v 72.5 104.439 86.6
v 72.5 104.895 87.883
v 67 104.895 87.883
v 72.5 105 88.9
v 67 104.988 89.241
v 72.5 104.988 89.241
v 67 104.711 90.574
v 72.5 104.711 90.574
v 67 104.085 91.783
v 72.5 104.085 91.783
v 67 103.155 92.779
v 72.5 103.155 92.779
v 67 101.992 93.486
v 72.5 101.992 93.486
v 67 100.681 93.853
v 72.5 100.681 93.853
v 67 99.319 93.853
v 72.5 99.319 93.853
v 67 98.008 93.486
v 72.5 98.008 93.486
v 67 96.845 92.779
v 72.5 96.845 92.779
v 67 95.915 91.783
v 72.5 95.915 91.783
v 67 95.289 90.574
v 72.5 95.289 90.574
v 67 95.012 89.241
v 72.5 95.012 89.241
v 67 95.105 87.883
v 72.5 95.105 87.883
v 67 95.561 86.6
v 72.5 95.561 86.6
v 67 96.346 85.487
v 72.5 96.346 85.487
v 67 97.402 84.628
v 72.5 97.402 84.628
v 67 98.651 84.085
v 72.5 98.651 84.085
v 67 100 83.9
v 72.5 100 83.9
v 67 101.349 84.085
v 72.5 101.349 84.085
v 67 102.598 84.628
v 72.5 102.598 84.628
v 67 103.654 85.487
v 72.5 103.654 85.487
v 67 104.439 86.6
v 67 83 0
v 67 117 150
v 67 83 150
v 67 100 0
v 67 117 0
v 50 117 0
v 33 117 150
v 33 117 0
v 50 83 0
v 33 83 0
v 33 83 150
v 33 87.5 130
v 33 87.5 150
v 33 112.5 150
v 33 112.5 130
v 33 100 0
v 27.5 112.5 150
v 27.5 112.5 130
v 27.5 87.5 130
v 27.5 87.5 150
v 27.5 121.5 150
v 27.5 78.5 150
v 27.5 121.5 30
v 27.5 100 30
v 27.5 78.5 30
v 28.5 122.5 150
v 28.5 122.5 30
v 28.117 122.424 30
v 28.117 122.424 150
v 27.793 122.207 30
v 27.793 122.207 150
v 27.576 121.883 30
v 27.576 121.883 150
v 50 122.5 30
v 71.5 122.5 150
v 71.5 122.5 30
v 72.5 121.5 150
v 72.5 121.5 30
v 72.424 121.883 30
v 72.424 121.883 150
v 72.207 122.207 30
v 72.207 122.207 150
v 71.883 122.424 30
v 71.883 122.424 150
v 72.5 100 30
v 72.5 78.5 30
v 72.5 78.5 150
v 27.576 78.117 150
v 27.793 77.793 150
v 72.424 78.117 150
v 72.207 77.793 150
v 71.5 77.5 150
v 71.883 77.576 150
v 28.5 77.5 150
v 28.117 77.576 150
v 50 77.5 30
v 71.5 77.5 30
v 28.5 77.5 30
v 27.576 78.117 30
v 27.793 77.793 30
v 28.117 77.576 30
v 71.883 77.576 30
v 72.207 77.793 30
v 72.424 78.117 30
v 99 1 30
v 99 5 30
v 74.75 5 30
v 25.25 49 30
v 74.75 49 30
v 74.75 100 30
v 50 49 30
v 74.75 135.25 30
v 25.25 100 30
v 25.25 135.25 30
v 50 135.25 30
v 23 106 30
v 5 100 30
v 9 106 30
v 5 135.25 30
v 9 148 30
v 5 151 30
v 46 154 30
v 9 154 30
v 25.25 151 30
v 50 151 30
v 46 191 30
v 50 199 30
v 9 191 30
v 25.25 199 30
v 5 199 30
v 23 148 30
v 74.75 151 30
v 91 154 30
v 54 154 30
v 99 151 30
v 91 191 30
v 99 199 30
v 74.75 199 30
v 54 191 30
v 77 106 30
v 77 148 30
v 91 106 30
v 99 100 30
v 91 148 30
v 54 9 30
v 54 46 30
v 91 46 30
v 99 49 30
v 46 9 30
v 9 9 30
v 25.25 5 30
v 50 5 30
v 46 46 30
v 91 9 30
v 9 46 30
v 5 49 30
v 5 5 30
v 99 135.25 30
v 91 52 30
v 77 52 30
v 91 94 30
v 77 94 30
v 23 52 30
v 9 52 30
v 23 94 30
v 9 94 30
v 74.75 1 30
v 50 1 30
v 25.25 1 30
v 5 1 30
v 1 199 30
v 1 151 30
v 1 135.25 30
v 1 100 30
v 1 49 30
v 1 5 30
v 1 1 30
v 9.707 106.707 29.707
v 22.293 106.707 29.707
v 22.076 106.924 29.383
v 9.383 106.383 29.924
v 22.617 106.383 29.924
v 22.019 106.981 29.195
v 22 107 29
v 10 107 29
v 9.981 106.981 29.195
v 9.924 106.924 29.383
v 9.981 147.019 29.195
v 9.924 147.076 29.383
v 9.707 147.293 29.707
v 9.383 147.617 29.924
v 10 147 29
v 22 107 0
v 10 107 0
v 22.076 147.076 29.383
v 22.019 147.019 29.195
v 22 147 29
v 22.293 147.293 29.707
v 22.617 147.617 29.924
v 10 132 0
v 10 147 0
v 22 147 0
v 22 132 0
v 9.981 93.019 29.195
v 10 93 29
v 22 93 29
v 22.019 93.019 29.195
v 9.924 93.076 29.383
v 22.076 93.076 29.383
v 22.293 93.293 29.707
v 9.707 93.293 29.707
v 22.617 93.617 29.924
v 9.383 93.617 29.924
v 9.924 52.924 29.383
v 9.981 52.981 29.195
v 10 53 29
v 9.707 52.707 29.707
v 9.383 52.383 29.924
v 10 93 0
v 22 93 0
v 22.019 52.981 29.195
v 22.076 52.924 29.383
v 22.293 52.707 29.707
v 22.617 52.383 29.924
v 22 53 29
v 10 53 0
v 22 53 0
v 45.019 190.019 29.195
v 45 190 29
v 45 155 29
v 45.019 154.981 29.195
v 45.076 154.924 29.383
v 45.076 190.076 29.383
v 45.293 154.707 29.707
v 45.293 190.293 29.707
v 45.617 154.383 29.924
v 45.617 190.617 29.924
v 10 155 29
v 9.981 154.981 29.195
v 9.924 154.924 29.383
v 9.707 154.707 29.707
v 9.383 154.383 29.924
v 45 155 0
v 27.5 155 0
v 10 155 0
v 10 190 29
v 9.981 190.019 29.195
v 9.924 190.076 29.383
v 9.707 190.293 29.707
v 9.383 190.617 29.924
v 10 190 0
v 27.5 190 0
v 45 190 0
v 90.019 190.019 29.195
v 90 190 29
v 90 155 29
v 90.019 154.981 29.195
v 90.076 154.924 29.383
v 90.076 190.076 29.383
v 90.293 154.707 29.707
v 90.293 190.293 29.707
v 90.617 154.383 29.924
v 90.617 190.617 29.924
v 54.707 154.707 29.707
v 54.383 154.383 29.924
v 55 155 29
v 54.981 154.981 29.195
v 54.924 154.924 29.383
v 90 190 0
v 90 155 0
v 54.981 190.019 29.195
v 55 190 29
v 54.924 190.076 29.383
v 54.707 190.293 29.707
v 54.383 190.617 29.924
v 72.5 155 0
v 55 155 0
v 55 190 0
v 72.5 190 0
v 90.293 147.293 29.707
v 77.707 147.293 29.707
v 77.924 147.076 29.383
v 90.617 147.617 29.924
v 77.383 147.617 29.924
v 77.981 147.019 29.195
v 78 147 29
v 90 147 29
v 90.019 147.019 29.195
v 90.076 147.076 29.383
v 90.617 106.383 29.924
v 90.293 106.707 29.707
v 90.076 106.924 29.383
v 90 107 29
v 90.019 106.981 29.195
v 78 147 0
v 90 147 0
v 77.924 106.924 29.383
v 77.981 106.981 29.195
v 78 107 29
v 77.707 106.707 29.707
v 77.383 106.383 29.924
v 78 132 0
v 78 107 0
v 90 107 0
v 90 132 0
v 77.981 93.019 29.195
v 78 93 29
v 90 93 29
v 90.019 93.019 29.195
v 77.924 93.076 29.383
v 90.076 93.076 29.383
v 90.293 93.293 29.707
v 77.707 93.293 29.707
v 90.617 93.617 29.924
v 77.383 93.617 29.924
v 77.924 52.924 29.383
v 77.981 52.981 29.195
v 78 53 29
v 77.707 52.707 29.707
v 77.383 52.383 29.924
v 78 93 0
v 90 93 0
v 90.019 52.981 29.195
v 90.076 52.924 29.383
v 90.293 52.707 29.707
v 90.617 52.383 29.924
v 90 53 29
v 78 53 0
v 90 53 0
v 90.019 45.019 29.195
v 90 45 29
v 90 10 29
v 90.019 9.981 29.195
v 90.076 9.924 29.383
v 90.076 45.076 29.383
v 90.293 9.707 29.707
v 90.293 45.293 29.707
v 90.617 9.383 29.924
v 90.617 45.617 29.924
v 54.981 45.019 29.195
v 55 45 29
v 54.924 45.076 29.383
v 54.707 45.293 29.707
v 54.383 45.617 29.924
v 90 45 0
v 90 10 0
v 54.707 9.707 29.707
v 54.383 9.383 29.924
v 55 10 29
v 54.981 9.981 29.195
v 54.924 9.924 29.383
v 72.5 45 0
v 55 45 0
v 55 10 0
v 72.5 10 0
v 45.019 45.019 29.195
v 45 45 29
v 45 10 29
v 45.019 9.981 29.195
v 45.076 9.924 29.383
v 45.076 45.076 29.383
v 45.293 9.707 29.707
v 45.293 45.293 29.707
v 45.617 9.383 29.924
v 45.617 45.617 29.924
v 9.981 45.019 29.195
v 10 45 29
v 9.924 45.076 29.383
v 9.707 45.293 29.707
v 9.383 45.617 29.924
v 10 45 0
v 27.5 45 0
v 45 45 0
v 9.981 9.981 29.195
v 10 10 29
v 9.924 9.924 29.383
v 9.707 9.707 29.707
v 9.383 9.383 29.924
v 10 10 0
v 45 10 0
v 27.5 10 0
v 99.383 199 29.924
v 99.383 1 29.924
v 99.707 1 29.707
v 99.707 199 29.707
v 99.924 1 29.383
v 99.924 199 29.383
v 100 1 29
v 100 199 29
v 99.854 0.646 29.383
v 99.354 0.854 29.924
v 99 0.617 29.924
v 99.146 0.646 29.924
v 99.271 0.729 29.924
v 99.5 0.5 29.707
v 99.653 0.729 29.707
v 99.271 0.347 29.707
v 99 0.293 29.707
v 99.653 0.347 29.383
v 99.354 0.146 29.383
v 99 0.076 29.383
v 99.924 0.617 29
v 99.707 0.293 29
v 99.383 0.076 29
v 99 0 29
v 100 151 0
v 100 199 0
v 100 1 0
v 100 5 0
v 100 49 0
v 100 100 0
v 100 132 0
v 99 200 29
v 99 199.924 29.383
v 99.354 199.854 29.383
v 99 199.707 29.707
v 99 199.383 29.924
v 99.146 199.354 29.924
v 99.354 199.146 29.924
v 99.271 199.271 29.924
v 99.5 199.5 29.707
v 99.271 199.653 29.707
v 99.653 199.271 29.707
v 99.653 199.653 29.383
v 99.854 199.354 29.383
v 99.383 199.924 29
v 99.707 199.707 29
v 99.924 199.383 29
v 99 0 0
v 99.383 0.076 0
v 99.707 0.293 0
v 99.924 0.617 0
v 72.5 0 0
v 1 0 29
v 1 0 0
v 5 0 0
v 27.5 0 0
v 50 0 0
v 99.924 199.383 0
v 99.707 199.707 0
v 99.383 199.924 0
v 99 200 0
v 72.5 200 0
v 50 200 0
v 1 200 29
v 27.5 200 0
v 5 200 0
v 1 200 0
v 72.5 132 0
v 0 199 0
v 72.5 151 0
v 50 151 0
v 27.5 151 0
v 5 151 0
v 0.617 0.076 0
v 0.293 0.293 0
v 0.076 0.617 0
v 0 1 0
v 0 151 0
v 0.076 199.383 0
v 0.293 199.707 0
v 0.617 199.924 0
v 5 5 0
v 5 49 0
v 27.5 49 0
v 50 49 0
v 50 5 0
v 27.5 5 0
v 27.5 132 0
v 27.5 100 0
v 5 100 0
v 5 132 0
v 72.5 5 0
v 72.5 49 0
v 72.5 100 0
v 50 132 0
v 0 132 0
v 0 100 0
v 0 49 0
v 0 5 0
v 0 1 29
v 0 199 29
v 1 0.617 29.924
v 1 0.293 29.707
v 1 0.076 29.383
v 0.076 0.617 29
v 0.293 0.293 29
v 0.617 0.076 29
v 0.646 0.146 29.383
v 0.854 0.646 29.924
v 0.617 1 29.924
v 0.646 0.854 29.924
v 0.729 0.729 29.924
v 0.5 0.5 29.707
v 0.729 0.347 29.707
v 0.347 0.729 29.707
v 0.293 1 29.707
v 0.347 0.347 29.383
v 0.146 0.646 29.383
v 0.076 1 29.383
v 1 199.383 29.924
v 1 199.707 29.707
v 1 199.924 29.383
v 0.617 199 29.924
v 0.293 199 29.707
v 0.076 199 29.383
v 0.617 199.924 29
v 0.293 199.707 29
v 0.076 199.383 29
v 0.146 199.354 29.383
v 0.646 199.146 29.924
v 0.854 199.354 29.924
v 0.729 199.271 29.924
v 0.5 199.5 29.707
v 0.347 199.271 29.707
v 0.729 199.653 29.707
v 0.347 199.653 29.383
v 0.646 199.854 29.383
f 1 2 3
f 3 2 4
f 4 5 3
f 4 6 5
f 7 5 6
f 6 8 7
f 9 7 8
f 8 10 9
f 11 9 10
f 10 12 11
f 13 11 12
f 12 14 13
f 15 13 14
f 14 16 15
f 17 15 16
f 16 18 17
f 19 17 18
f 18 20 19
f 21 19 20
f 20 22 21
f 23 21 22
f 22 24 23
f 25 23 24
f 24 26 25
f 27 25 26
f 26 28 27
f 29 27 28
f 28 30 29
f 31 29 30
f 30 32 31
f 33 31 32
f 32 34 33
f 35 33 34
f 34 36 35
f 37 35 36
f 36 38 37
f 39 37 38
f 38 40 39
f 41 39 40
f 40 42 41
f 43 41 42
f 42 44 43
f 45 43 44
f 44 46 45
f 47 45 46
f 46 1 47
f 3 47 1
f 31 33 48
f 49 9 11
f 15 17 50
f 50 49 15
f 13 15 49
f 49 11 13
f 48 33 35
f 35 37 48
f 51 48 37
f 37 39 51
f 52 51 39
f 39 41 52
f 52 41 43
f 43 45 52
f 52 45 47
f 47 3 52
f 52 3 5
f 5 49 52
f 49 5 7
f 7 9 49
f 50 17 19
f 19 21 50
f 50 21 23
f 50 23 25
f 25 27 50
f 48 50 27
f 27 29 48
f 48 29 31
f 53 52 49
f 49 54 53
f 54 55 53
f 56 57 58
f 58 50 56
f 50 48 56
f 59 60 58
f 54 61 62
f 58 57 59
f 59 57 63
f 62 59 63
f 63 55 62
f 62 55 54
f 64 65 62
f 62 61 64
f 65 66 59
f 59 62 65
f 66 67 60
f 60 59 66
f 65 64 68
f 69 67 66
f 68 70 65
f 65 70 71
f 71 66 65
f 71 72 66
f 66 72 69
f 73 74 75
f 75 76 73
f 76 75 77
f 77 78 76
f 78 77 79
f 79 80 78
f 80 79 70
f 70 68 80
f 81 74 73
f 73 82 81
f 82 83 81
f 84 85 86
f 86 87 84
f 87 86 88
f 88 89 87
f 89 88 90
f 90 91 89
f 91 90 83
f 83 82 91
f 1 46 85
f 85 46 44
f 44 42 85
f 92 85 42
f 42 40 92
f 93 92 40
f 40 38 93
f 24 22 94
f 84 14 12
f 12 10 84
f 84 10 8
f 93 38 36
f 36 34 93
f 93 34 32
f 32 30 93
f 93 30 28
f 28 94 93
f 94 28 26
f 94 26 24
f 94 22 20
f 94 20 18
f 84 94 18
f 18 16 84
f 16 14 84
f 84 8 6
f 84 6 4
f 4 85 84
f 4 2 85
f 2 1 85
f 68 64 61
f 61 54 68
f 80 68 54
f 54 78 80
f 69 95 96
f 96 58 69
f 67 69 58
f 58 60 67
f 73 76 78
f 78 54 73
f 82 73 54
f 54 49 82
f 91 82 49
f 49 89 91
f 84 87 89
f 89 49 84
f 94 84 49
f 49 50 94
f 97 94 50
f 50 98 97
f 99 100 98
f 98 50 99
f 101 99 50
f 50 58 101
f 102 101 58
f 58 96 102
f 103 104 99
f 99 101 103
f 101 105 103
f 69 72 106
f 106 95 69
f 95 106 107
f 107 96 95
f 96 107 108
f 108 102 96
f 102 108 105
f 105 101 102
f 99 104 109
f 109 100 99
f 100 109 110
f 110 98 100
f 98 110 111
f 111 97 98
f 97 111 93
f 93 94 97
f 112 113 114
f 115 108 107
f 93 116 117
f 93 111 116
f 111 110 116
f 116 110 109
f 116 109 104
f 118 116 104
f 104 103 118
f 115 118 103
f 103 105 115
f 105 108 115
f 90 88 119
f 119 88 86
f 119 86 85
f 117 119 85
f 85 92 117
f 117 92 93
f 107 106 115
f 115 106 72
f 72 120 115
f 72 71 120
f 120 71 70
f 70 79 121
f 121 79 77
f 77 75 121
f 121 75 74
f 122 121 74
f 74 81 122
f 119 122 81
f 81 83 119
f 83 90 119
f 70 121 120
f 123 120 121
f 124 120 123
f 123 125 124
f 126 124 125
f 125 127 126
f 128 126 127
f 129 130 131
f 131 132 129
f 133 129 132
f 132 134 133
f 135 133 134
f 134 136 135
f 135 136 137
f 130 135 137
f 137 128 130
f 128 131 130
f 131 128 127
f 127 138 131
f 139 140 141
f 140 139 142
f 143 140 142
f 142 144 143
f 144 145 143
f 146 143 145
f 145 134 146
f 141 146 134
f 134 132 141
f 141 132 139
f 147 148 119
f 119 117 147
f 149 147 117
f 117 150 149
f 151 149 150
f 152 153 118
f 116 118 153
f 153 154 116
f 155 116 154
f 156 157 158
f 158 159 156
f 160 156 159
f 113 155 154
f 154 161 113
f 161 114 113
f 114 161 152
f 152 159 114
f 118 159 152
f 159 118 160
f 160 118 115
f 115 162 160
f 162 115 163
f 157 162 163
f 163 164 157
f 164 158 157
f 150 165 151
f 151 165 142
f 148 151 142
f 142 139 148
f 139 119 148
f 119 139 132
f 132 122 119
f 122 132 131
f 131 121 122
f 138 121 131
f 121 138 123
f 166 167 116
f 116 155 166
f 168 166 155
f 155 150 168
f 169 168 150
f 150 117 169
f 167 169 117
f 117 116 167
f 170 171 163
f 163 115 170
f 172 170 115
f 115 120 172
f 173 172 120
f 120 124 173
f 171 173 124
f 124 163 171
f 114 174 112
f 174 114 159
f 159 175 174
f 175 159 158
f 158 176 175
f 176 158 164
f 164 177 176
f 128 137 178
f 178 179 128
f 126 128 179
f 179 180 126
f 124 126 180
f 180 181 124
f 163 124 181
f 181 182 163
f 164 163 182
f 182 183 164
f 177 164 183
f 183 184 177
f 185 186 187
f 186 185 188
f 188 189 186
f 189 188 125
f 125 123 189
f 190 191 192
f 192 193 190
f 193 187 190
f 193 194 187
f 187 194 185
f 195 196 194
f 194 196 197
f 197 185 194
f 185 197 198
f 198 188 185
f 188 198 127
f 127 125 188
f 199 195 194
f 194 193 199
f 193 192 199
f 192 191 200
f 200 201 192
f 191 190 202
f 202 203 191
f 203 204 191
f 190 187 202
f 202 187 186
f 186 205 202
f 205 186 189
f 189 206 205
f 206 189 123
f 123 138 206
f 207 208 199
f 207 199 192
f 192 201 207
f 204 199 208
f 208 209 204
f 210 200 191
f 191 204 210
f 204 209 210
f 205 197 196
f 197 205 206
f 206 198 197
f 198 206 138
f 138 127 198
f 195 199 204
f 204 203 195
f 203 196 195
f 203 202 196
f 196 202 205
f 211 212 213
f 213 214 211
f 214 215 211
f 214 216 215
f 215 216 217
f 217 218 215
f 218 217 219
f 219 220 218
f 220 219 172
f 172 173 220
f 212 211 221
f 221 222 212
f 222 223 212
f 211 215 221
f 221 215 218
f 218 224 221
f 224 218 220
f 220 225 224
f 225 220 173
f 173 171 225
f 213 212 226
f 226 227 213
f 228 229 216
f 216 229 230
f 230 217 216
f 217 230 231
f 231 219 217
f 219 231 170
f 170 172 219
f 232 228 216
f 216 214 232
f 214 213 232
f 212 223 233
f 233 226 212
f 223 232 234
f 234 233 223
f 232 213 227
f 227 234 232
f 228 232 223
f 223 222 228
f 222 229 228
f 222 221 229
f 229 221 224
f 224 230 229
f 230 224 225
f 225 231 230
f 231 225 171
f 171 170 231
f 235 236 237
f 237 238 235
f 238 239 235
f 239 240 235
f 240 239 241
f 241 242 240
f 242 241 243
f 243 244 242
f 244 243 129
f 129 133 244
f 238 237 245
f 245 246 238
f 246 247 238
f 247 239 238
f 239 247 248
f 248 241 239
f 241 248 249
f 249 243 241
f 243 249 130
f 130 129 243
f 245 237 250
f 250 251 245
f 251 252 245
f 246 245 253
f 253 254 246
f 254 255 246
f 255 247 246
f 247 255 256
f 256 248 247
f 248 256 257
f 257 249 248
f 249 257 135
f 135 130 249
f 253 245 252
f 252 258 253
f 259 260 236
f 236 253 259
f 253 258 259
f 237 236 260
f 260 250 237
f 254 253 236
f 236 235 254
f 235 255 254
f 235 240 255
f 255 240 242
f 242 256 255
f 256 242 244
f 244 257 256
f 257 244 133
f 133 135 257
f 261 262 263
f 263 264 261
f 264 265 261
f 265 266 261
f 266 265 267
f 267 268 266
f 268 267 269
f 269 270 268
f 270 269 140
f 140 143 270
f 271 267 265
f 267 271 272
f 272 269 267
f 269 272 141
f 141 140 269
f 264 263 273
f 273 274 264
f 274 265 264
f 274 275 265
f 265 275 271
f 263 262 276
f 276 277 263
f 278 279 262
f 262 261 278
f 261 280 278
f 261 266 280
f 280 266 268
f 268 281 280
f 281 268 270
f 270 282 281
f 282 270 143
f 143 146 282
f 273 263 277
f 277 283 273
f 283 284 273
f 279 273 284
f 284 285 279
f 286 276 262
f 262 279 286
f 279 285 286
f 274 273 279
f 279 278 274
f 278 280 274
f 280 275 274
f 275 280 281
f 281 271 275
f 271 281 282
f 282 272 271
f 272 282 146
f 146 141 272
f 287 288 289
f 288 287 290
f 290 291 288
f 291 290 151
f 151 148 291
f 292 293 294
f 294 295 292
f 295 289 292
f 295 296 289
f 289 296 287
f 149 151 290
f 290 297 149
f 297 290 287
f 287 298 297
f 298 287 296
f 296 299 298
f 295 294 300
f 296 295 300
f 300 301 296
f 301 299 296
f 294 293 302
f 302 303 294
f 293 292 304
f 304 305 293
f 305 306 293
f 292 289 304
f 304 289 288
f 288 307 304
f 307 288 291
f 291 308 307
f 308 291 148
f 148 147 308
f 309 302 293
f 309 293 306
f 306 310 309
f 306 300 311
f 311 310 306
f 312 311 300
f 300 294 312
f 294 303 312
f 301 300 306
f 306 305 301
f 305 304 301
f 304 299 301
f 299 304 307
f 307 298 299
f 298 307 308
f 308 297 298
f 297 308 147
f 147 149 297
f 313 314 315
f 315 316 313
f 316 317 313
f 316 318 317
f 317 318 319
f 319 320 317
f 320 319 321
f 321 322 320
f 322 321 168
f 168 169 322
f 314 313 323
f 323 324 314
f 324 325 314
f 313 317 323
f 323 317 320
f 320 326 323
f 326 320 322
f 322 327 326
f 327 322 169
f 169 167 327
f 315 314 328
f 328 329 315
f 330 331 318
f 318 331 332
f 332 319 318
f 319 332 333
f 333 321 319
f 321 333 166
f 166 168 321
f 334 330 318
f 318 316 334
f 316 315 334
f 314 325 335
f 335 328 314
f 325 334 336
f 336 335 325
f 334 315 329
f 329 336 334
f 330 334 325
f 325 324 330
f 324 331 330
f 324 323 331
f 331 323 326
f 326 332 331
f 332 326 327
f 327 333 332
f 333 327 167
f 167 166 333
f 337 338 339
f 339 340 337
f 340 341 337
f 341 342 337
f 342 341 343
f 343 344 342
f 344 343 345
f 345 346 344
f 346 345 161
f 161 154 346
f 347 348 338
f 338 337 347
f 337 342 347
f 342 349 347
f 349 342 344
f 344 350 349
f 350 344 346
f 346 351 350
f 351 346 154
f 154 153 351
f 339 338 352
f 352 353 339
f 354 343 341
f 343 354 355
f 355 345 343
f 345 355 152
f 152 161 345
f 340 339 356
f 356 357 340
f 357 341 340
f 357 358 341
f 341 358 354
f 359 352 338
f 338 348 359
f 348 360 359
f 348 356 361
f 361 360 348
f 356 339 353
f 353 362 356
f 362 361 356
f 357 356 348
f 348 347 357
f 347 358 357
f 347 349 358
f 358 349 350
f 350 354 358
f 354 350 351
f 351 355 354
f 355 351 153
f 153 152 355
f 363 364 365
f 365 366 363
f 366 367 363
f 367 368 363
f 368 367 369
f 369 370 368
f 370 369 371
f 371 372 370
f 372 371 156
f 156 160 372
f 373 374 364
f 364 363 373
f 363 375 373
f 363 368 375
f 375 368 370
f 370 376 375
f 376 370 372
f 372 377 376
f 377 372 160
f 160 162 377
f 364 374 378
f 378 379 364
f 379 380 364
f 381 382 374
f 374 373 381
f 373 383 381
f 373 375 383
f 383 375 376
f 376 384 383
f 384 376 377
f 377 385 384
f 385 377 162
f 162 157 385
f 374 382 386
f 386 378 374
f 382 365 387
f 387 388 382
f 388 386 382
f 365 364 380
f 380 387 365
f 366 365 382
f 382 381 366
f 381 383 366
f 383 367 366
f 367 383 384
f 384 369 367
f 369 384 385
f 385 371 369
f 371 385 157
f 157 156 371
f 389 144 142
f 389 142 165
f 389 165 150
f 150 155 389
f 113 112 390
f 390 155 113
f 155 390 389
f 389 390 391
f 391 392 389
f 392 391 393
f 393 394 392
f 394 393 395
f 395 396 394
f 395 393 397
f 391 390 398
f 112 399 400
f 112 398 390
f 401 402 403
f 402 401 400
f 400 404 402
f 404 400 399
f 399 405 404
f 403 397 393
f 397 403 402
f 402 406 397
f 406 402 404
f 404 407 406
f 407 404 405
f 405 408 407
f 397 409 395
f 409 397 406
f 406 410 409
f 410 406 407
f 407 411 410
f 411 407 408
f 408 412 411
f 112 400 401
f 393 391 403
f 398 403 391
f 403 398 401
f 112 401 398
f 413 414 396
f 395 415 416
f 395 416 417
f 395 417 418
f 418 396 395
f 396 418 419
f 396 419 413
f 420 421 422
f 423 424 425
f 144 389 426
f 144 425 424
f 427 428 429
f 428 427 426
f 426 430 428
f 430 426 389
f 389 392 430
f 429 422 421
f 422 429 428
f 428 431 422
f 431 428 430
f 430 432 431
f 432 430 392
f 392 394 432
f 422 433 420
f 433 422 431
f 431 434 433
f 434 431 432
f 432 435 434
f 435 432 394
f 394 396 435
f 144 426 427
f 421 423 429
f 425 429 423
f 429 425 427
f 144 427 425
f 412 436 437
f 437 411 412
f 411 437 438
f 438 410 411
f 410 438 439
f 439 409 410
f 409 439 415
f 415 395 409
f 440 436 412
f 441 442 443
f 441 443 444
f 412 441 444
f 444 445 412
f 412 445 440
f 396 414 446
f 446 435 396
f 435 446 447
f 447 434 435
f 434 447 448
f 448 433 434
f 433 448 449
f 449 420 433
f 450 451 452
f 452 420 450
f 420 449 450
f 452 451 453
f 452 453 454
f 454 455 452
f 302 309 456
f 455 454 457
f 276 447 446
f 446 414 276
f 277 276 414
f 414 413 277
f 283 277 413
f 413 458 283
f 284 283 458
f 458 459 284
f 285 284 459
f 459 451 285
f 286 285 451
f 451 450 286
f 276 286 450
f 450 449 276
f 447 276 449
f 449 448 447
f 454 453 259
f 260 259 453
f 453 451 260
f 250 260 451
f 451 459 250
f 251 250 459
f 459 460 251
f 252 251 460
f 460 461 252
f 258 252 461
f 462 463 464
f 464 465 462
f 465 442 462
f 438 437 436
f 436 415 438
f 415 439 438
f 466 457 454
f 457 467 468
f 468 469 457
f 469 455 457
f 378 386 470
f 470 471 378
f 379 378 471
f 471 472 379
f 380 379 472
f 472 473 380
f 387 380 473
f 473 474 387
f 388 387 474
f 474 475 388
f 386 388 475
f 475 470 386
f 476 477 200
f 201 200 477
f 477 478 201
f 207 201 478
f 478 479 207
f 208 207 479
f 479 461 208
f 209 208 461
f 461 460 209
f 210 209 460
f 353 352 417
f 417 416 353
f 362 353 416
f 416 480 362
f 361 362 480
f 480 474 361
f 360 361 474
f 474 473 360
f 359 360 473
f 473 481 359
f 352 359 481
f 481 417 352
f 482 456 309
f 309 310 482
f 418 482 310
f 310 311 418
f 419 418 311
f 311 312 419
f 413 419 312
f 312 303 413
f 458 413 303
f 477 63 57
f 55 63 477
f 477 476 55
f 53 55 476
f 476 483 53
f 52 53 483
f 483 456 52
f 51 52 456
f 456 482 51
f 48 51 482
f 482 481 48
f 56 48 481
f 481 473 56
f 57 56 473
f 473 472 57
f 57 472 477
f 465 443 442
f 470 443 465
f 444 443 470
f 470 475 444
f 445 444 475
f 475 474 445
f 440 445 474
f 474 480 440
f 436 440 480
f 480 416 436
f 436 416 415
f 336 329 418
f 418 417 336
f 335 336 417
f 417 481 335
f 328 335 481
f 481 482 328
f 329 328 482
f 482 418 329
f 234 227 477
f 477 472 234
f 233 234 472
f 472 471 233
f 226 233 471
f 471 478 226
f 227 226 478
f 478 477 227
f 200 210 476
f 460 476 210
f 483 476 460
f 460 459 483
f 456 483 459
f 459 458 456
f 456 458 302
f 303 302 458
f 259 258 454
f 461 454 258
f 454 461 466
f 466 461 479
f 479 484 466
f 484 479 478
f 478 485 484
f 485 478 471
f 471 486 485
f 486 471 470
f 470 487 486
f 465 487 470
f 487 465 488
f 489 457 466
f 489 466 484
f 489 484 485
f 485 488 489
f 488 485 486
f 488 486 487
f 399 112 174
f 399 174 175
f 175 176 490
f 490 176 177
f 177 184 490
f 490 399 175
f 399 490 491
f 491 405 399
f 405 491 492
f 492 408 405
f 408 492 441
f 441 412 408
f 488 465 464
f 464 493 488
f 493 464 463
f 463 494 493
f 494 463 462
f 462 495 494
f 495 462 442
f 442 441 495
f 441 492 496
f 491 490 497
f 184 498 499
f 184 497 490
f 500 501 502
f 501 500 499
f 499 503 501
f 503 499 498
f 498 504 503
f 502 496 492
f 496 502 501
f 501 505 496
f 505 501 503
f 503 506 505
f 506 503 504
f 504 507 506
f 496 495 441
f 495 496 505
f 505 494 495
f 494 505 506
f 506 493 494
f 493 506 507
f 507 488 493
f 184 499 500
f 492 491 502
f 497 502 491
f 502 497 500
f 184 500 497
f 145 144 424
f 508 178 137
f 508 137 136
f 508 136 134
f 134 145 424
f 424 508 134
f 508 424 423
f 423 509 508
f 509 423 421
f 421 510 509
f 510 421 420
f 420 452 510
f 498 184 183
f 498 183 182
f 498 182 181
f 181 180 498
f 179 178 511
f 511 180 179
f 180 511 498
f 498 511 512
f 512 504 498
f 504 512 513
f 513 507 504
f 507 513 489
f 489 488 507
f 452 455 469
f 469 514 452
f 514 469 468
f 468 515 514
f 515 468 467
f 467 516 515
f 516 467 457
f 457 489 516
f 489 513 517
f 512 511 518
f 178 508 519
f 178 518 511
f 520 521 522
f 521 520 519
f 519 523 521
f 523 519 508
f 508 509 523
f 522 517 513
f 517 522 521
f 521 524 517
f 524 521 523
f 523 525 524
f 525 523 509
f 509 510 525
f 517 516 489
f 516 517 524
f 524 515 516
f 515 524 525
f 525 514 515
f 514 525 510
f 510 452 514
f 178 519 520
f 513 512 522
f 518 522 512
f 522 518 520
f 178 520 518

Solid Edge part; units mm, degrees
sketch "Sketch1" plane through (0, 0, 0) normal (0, 0, 1) x (1, 0, 0)
  line L0 (100, 0) -> (100, 200)
  line L1 (100, 200) -> (0, 200)
  line L2 (0, 200) -> (0, 0)
  line L3 (0, 0) -> (100, 0)
extrude "Protrusion1" add sketch "Sketch1" along normal blind 30
sketch "Sketch2" plane through (50, 100, 30) normal (0, 0, 1) x (0, 1, 0)
  line L0 (-55, 40) -> (-90, 40)
  line L1 (-90, 40) -> (-90, 5)
  line L2 (-90, 5) -> (-55, 5)
  line L3 (-55, 5) -> (-55, 40)
  line L4 (-7, 40) -> (-47, 40)
  line L5 (-47, 40) -> (-47, 28)
  line L6 (-47, 28) -> (-7, 28)
  line L7 (-7, 28) -> (-7, 40)
  line L8 (7, 40) -> (47, 40)
  line L9 (47, 40) -> (47, 28)
  line L10 (47, 28) -> (7, 28)
  line L11 (7, 28) -> (7, 40)
  line L12 (55, 40) -> (90, 40)
  line L13 (90, 40) -> (90, 5)
  line L14 (90, 5) -> (55, 5)
  line L15 (55, 5) -> (55, 40)
  line L16 (-55, -40) -> (-55, -5)
  line L17 (-55, -5) -> (-90, -5)
  line L18 (-90, -5) -> (-90, -40)
  line L19 (-90, -40) -> (-55, -40)
  line L20 (-7, -28) -> (-47, -28)
  line L21 (-47, -28) -> (-47, -40)
  line L22 (-47, -40) -> (-7, -40)
  line L23 (-7, -40) -> (-7, -28)
  line L24 (7, -28) -> (47, -28)
  line L25 (47, -28) -> (47, -40)
  line L26 (47, -40) -> (7, -40)
  line L27 (7, -40) -> (7, -28)
  line L28 (55, -40) -> (55, -5)
  line L29 (55, -5) -> (90, -5)
  line L30 (90, -5) -> (90, -40)
  line L31 (90, -40) -> (55, -40)
  line L32 (17, -17) -> (17, 17)
  line L33 (17, 17) -> (-17, 17)
  line L34 (-17, 17) -> (-17, -17)
  line L35 (-17, -17) -> (17, -17)
  dimension "D1" = 17
  dimension "D2" = 17
  dimension "D3" = 22.5
  dimension "D4" = 22.5
  dimension "D5" = 35
  dimension "D6" = 35
  dimension "D7" = 10
  dimension "D8" = 10
  dimension "D9" = 35
  dimension "D10" = 35
  dimension "D11" = 10
  dimension "D12" = 10
  dimension "D13" = 40
  dimension "D14" = 12
  dimension "D15" = 10
  dimension "D16" = 8
  dimension "D17" = 40
  dimension "D18" = 12
  dimension "D19" = 8
  dimension "D20" = 10
extrude "Cutout1" cut sketch "Sketch2" against normal up to next
sketch "Sketch3" plane through (50, 100, 30) normal (0, 0, 1) x (0, 1, 0)
  line L0 (22.5, 22.5) -> (-22.5, 22.5)
  line L1 (-22.5, 22.5) -> (-22.5, -22.5)
  line L2 (-22.5, -22.5) -> (22.5, -22.5)
  line L3 (22.5, -22.5) -> (22.5, 22.5)
  line L4 (17, 17) -> (-17, 17)
  line L5 (-17, 17) -> (-17, -17)
  line L6 (-17, -17) -> (17, -17)
  line L7 (17, -17) -> (17, 17)
  dimension "D1" = 17
  dimension "D2" = 17
  dimension "D3" = 22.5
  dimension "D4" = 22.5
  dimension "D5" = 35
  dimension "D6" = 35
  dimension "D7" = 10
  dimension "D8" = 10
  dimension "D9" = 35
  dimension "D10" = 35
  dimension "D11" = 10
  dimension "D12" = 10
  dimension "D13" = 40
  dimension "D14" = 12
  dimension "D15" = 10
  dimension "D16" = 8
  dimension "D17" = 40
  dimension "D18" = 12
  dimension "D19" = 8
  dimension "D20" = 10
extrude "ExtrudedProtrusion_2" add sketch "Sketch3" along normal blind 120
sketch "Sketch4" plane through (72.5, 100, 105) normal (1, 0, 0) x (0, 1, 0)
  circle A0 centre (0, -16.1) radius 5
extrude "Cutout2" cut sketch "Sketch4" against normal up to next
fillet "Round_1" radius 1 44 edges at (100, 100, 30) (50, 0, 30) (50, 200, 30) (0, 100, 30) (0, 200, 15) (100, 200, 15) (100, 0, 15) (0, 0, 15) (72.5, 77.5, 90) (72.5, 122.5, 90) (27.5, 77.5, 90) (27.5, 122.5, 90) (10, 27.5, 30) (27.5, 10, 30) (27.5, 45, 30) (45, 27.5, 30) (55, 27.5, 30) (72.5, 10, 30) (72.5, 45, 30) (90, 27.5, 30) (78, 73, 30) (84, 53, 30) (90, 73, 30) (84, 93, 30) (78, 127, 30) (84, 107, 30) (90, 127, 30) (84, 147, 30) (72.5, 155, 30) (55, 172.5, 30) (72.5, 190, 30) (90, 172.5, 30) (10, 172.5, 30) (27.5, 190, 30) (27.5, 155, 30) (45, 172.5, 30) (10, 73, 30) (16, 53, 30) (22, 73, 30) (16, 93, 30) (16, 147, 30) (22, 127, 30) (10, 127, 30) (16, 107, 30)
sketch "Sketch5" plane through (27.5, 100, 105) normal (-1, 0, 0) x (0, -1, 0)
  line L0 (-12.5, 45) -> (-12.5, 25)
  line L1 (-12.5, 25) -> (12.5, 25)
  line L2 (12.5, 25) -> (12.5, 45)
  line L3 (12.5, 45) -> (-12.5, 45)
extrude "Cutout3" cut sketch "Sketch5" against normal up to next
